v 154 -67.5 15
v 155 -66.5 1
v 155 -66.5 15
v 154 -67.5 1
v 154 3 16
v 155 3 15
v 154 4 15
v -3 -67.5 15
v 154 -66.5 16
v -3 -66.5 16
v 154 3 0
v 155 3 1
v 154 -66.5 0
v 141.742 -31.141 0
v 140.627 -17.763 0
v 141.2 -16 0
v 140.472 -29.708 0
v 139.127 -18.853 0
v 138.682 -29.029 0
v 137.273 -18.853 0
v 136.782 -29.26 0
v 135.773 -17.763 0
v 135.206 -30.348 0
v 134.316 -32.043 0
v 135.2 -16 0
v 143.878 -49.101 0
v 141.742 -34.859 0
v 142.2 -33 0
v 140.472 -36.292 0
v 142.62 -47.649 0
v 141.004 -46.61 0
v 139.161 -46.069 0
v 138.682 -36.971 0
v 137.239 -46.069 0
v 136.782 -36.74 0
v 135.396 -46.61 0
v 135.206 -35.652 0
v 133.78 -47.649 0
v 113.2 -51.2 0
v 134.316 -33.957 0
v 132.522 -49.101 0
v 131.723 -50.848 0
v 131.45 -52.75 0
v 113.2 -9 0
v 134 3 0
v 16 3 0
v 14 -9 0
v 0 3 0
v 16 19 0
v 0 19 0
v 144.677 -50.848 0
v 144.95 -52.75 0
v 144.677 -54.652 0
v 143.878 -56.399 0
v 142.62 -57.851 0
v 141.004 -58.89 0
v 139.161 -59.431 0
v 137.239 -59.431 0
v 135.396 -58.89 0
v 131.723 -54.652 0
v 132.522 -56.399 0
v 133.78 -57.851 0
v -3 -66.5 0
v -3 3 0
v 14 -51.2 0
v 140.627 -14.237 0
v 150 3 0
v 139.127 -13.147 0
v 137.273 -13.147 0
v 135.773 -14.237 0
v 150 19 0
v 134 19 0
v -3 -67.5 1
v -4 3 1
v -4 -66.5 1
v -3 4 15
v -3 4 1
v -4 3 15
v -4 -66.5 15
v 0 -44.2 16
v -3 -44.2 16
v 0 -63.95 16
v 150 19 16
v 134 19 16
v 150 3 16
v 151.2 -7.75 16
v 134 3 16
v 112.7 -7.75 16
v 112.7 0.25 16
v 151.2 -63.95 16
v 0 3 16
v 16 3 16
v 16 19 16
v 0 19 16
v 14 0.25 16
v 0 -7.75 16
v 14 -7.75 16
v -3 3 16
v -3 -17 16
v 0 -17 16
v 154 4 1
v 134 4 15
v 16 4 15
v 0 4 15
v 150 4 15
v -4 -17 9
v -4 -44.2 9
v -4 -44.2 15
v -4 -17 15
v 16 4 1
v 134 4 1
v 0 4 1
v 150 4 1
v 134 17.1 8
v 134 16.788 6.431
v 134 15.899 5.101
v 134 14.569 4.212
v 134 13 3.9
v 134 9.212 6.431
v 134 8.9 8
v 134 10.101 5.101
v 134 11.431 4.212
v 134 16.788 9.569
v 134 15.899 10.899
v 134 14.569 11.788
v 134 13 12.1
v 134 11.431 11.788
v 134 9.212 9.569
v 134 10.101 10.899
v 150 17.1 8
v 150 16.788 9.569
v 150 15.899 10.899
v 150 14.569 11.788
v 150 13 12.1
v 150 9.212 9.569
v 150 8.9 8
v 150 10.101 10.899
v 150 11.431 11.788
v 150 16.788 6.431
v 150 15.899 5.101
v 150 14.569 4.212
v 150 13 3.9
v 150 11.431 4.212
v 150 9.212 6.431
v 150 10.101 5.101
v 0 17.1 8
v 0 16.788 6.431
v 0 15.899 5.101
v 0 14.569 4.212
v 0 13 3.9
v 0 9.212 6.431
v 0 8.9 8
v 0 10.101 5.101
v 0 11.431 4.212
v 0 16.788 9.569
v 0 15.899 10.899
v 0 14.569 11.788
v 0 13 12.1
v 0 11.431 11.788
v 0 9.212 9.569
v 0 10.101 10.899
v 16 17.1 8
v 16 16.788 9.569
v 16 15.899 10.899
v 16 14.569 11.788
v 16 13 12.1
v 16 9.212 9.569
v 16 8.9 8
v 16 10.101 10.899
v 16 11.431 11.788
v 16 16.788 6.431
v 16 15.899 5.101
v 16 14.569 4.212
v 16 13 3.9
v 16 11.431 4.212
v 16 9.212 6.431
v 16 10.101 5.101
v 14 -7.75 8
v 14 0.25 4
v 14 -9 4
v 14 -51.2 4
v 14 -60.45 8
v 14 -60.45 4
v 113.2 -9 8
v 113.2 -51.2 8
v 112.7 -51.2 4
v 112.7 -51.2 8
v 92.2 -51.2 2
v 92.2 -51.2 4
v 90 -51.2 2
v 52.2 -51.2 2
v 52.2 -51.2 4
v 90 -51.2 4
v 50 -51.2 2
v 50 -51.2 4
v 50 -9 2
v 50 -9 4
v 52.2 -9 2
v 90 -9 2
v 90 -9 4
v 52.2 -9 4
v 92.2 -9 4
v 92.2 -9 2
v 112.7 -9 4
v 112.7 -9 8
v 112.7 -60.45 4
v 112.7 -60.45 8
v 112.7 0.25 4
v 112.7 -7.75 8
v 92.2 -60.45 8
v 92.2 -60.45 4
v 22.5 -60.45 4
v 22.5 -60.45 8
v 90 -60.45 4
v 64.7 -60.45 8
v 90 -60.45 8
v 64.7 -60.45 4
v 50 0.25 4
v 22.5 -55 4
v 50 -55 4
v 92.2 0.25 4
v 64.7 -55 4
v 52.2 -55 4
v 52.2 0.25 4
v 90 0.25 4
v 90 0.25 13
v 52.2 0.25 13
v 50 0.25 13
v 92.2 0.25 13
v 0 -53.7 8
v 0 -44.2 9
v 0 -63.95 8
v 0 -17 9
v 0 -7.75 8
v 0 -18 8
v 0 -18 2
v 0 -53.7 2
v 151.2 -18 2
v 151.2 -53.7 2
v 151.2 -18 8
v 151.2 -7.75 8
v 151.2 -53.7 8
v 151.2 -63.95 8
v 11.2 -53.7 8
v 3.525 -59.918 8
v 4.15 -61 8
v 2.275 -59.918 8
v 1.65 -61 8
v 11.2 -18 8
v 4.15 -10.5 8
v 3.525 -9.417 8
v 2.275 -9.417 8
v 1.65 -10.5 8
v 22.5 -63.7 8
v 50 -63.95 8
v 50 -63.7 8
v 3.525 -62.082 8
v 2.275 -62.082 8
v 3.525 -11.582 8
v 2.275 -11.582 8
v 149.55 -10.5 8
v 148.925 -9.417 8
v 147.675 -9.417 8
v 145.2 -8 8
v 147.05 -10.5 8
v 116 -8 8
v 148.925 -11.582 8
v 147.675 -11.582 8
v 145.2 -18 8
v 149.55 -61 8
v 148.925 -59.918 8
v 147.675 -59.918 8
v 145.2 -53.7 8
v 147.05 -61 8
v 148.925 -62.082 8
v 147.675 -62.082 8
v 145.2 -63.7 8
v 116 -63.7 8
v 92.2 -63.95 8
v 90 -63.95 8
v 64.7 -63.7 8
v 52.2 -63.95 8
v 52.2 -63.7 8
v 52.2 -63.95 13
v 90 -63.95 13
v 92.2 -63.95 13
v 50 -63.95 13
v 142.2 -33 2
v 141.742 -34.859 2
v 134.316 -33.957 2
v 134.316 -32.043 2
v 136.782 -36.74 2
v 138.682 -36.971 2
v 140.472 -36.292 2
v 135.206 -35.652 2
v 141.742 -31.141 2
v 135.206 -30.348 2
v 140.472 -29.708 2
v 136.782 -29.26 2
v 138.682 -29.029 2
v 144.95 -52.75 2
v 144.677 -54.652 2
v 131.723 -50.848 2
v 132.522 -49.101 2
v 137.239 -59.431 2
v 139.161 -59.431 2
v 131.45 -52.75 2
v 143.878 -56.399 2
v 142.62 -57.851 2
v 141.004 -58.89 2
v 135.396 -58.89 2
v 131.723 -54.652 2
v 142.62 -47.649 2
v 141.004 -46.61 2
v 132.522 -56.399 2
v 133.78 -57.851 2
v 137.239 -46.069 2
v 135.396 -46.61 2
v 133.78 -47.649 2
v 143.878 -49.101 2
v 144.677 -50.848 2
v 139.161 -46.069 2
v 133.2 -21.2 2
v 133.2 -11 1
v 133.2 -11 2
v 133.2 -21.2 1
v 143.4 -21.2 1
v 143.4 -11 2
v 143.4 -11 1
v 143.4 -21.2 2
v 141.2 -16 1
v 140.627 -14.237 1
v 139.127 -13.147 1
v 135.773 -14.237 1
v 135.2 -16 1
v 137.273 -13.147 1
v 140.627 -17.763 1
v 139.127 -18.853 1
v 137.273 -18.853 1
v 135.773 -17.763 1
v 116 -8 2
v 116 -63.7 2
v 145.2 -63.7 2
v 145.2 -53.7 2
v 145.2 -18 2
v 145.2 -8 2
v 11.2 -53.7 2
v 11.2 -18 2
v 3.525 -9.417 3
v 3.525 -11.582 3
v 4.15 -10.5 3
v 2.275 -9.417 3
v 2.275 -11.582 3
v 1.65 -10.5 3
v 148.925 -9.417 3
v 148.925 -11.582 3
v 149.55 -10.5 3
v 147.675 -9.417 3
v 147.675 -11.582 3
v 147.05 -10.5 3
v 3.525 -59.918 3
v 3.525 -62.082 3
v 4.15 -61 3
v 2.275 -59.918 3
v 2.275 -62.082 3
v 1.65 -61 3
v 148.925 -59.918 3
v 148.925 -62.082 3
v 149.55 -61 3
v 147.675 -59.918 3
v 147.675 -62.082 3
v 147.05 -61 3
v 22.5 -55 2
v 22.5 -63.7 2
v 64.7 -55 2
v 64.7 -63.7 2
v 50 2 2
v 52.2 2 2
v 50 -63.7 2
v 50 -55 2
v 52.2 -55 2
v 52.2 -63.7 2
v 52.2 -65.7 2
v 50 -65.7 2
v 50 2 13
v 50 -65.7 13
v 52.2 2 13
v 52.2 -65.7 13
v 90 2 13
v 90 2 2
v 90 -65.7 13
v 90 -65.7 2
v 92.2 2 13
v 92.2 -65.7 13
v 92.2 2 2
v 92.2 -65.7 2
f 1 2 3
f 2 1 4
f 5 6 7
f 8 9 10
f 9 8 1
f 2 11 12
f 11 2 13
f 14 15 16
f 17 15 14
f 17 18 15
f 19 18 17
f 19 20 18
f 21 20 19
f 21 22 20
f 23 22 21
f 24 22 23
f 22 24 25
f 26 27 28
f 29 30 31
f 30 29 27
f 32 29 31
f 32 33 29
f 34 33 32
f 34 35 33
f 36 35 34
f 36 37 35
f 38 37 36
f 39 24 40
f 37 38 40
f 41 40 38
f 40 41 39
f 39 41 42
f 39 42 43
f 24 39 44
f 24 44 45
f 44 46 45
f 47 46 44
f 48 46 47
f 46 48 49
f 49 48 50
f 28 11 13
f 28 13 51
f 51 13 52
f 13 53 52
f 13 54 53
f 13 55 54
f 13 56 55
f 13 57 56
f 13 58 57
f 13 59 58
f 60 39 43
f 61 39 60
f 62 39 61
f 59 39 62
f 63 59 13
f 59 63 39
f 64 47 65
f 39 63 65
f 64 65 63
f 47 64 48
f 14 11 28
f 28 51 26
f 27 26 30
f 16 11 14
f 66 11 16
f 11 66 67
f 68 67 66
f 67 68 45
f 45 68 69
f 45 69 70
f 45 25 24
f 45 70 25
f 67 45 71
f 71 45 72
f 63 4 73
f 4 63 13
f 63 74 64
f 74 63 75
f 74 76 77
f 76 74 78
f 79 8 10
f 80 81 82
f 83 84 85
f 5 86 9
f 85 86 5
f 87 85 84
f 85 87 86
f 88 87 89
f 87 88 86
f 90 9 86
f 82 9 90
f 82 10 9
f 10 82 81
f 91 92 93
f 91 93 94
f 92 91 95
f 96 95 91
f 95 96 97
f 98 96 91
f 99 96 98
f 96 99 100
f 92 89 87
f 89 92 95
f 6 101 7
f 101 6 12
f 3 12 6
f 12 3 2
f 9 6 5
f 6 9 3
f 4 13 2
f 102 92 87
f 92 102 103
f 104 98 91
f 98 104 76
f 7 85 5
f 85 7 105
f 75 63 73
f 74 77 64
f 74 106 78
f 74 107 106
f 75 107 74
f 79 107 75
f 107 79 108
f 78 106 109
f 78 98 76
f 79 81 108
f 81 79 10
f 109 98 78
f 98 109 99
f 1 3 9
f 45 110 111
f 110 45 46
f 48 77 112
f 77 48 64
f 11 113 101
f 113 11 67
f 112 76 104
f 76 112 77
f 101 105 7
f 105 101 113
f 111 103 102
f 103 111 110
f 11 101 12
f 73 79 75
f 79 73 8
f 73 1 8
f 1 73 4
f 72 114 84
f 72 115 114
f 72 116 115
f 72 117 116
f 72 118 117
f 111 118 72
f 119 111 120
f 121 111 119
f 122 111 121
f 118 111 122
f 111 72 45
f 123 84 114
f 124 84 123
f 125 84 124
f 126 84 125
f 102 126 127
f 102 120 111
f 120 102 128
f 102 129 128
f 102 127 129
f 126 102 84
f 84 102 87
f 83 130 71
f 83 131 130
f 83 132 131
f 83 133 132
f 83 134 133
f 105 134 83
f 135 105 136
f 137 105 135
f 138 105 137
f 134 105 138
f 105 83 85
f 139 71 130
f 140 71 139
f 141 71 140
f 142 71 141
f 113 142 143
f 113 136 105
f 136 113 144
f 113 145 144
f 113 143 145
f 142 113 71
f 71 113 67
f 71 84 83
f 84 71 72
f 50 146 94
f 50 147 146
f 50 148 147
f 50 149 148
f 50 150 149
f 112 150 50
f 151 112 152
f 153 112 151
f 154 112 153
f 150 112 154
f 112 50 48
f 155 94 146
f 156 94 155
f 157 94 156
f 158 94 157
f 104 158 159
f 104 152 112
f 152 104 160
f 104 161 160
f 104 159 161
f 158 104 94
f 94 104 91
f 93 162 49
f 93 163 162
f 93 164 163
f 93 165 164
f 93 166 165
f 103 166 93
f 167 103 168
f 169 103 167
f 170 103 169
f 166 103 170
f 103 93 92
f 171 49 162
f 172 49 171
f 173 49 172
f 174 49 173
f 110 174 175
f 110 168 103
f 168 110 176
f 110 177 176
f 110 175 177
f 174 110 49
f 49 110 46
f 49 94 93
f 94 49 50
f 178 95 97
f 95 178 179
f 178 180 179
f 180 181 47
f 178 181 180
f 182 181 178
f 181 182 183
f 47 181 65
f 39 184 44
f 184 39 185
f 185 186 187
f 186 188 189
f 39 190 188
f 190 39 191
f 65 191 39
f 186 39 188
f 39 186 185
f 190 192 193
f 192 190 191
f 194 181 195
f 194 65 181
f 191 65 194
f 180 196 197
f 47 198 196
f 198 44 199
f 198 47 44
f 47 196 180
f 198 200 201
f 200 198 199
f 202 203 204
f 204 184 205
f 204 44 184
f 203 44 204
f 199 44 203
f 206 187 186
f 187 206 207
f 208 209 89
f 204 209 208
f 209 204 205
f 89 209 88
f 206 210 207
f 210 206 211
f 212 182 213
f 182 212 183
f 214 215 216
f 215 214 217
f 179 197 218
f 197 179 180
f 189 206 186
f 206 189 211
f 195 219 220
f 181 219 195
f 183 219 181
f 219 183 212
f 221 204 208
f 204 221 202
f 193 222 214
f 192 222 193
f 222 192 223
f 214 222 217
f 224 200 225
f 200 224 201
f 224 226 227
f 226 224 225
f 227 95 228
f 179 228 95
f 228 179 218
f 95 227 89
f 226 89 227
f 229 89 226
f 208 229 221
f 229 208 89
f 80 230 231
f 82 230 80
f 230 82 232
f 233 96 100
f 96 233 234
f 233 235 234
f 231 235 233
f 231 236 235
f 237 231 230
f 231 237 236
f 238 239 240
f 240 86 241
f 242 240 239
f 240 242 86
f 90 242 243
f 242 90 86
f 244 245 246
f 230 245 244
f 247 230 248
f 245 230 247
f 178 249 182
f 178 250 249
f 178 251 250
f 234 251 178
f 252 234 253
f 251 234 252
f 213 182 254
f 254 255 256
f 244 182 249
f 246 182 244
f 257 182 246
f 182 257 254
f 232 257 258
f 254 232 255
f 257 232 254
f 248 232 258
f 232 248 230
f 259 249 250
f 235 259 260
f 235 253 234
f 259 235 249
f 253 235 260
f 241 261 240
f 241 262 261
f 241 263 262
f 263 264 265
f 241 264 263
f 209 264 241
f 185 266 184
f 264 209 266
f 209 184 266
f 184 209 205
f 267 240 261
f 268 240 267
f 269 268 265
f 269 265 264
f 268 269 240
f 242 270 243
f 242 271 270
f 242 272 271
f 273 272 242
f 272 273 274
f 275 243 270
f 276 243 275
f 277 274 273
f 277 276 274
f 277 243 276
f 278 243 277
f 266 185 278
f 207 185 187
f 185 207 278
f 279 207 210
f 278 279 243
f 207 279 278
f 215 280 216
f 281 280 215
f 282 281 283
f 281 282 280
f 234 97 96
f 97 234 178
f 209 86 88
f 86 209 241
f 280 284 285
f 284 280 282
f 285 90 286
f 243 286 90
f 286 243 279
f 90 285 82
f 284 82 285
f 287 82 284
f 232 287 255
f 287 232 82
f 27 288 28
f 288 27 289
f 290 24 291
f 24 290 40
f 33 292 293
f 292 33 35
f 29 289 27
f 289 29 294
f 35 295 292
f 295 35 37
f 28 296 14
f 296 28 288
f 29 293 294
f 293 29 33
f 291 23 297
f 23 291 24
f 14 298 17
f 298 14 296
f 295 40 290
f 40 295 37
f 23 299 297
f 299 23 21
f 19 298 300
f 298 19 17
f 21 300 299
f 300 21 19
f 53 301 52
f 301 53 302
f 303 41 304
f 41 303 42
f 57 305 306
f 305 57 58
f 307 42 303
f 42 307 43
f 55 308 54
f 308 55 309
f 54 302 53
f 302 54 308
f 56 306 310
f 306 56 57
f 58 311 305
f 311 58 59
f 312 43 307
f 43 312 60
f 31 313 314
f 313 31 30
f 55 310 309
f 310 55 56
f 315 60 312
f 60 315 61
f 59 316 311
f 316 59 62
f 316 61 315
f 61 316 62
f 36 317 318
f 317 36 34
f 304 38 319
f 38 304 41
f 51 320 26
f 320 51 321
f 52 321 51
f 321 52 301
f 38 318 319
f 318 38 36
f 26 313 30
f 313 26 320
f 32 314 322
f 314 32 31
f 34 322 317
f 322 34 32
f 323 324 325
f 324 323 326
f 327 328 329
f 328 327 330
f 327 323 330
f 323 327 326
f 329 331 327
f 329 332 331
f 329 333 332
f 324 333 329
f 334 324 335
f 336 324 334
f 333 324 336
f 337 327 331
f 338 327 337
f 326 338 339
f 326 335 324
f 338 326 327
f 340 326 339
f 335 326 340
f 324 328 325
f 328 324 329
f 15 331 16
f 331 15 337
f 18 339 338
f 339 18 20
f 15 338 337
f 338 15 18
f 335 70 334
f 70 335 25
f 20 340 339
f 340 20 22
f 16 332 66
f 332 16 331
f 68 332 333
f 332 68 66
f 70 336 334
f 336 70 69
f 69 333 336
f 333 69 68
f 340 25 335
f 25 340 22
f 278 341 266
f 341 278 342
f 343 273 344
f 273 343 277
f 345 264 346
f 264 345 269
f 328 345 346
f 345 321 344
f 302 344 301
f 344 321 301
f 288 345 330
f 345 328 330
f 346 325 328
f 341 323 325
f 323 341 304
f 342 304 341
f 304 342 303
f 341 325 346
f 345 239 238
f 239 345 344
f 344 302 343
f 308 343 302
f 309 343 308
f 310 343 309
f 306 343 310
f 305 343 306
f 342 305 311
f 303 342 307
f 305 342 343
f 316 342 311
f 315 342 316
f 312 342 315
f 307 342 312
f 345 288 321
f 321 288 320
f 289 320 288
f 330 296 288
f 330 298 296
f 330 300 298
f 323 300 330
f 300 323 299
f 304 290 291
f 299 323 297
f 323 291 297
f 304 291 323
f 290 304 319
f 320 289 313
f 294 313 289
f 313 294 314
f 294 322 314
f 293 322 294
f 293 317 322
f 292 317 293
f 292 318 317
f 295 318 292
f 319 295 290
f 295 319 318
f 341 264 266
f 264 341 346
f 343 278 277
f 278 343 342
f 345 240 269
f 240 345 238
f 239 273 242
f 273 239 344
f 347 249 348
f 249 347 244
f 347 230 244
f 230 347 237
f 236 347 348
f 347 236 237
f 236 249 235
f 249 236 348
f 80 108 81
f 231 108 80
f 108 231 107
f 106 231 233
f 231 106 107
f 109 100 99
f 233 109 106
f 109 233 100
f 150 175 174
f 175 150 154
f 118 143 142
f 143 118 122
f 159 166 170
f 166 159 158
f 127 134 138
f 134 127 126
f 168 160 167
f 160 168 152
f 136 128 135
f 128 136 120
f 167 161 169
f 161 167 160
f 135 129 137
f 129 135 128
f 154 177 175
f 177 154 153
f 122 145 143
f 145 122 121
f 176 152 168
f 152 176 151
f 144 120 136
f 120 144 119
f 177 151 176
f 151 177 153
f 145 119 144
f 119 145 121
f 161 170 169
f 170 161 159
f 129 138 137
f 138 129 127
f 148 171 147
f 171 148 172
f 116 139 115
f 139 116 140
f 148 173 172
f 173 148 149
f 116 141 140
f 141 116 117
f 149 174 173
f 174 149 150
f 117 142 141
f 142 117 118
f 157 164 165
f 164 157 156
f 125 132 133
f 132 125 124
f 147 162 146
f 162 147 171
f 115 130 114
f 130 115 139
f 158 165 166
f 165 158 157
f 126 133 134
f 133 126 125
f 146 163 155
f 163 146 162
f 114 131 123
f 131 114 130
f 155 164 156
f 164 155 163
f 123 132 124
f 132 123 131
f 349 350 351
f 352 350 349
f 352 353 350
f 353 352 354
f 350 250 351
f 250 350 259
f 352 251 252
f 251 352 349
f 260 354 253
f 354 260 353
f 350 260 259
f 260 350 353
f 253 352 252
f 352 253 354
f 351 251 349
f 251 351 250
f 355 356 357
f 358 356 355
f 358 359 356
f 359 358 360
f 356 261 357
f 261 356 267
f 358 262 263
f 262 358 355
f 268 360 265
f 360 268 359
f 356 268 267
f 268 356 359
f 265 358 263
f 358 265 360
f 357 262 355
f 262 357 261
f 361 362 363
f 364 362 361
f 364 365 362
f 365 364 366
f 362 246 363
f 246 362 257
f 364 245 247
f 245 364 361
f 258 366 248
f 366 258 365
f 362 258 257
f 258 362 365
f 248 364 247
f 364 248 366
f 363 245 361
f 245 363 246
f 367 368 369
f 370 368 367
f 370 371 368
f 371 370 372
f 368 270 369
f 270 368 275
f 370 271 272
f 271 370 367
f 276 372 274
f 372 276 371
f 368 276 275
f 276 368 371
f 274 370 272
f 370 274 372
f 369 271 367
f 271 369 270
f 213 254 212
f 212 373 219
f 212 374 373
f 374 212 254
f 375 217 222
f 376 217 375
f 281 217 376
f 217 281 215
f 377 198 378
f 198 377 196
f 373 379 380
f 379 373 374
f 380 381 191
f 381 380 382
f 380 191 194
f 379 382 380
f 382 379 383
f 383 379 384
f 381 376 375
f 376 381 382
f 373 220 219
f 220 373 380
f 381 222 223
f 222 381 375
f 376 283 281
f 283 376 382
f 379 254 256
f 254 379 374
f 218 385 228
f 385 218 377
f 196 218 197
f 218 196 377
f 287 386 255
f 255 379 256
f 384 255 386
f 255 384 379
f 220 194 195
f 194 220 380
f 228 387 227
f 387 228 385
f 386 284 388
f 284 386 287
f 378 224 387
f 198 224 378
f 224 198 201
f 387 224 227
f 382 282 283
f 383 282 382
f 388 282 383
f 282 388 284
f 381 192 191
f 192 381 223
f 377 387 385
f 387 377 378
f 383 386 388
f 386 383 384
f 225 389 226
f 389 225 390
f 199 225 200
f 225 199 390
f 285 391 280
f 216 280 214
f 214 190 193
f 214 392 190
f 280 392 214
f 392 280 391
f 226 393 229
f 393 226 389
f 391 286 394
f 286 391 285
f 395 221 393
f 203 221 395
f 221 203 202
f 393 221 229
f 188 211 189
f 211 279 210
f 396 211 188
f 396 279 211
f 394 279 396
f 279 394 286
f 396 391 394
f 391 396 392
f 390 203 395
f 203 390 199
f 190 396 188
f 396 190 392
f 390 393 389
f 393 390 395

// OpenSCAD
//////////////////////////////////////////////////////////////////////////////////////
///
///  Double Hinged Frame for Smart LCD 2004 Controller
///
///  This file constructs a double hinged frame for the Smart LCD Controller for mounting
///  on a box-frame Prusa i3 3D printer.  The hinge mechanism allows the controller
///  to be stowed away behind the frame when it's not being used.
///  
///  The project consists of the LCD frame as such and a strong double hinge mechanism.
///  Both frame and hinge mechanism can also be used independently, i.e. if the
///  Smart LCD Controller is to be mounted in a fixed position, the hinge is not
///  needed, and the hinge mechanism alone could well also be useful for flexible
///  mounting devices other than that particular controller.
///
///  The Smart LCD Controller is inserted into frame part and fastened on it by
///  means of four M3x10 screws.  
///
///  The hinge axes are M4 screws which are tightened with a spring and a Nyloc nut,
///  as to allow rotation while maintaining enough pressure to keep the frame solidly
///  in place.  The printer-side hinge also has a locking mechanism to restrict the
///  rotation between 0 and 90 degrees.  Also grooves at 0 and 90 degrees cause
///  the hinge to snap precisely into place at the two end positions.
///
///  The provided SCAD file is fully parametrized, so that it can be easily modified
///  to particular needs, if necessary.  Separate STL files are provided for the frame
///  and the hinge parts.
///
//////////////////////////////////////////////////////////////////////////////////////
///
///  2014-12-03 Heinz Spiess, Switzerland
///
///  released under Creative Commons - Attribution - Share Alike licence (CC BY-SA)
//////////////////////////////////////////////////////////////////////////////////////

eh=0.25;  // extrusion layer height
ew=0.55;  // extrusion width

// build a cube with chamfered edges
module chamfered_cube(size,d=1){
   hull(){
     translate([d,d,0])cube(size-2*[d,d,0]);
     translate([0,d,d])cube(size-2*[0,d,d]);
     translate([d,0,d])cube(size-2*[d,0,d]);
   }
}


// build a cylinder with chamfered edges
module chamfered_cylinder(r=0,r1=0,r2=0,h=0,d=1){
   hull(){
      translate([0,0,d])cylinder(r1=(r?r:r1),r2=(r>0?r:r2),h=h-2*d);
      cylinder(r1=(r?r:r1)-d,r2=(r>0?r:r2)-d,h=h);
   }
}

//////////////////////////////////////////////////////////////////////
// build an arbitrary object from a list of blocks and cavities
//////////////////////////////////////////////////////////////////////
module object(blocks,cavities,eps=[0,0,0]){
   difference(){
      union()for(i=[0:len(blocks)-1])assign(b=blocks[i])
         translate(b[0])
	    if(b[1][0]>0)
	       if(len(b[1])>3)
	          chamfered_cube([b[1][0],b[1][1],b[1][2]],b[1][3]);
	       else
	          cube(b[1]);
	    else
	       rotate(90*[b[1][0]==-1?1:0,b[1][0]==-2?1:0,0])
	       cylinder(r=b[1][1],h=b[1][2],$fn=(len(b)>2?b[2]:0));
      for(i=[0:len(cavities)-1])assign(c=cavities[i])
         translate(c[0])
	    if(c[1][0]>0)
	       translate([-eps])cube(c[1]+2*eps);
	    else
	       rotate(90*[c[1][0]==-1?1:0,c[1][0]==-2?1:0,0])
	       cylinder(r=c[1][1],h=c[1][2],$fn=(len(c)>2?c[2]:0));
   }
}


//////////////////////////////////////////////////////////////////////
// Frame for Smart 2004 LCD Controller 
//////////////////////////////////////////////////////////////////////
module smartlcd(
w=4,              // wall thickness
s=[4,7.2,5],      // screw [screw diameter,nut size, nut height]
eps=[0.1,0.1,0] // gap for cavities
){
  dist_conns = 113.2+25;
  blocks=[
      [[-w,-w,0],[151+2*w,63.5+2*w,16,1]],
      [[134,-19,0],[16,16,16]],  
    [[0,-19,0],[16,16,16]],
    //[[113.2,10,-10],[26,10,10]],
    // just one outer block
    
  ];
   cavities=[
      [[14,9,-2],[99,42,19]],    // LCD cutout
      [[14,-0.25,4],[98.5,60.5,9+10]],  // LCD PCB
      [[0,7.75,8],[151,56,5+14]],    // Main PCB
      [[dist_conns,33,-2],[0,8/2,20]],     // Switch axis
      [[dist_conns,7+39+13.5/2,-2],[0,13.5/2,19]],     // buzzer
      [[dist_conns-5,11,1], [10, 10, 20]],
      [[dist_conns,16,-2],[0,3,20]],      // reset switch
      [[116,8,2],[29,55.5,10]],     // buzzer/switch/reset
      [[118,18,2],[33,35.5,10]],    // buzzer/switch/reset
      [[0,18,2],[11,35.5,10]],    // buzzer/switch/reset
      [[-w-1,17,9],[w+2,27,10]],    // SD slot
    
    [[-1,-13,8],[-2,4.1,200], 16],
    
    
      //[[-w-1,s[0]/2,8],[-2,s[0]/2,151+2*w+2],7], // hinge hole
      //[[w,s[0]/2,8],[-2,s[1]/2/cos(30),s[2]],6], // hinge nut trap
      //[[w,s[0]/2,12],[-2,s[1]/2/cos(30),s[2]],6], // hinge nut trap
      //[[w,s[0]/2,16],[-2,s[1]/2/cos(30),s[2]],6], // hinge nut trap
      //[[151-w-s[2],s[0]/2,8],[-2,s[1]/2/cos(30),s[2]],6], // hinge nut trap
      //[[151-w-s[2],s[0]/2,12],[-2,s[1]/2/cos(30),s[2]],6], // hinge nut trap
      //[[151-w-s[2],s[0]/2,16],[-2,s[1]/2/cos(30),s[2]],6], // hinge nut trap
      [[0+2.9,8+2.5,3],[0,2.5/2,6],6],    // Screw hole for PCB
      [[151-2.7,8+2.5,3],[0,2.5/2,6],6],  // Screw hole for PCB
      [[0+2.9,8+55.5-2.5,3],[0,2.5/2,6],6],    // Screw hole for PCB
      [[151-2.7,8+55.5-2.5,3],[0,2.5/2,6],6],    // Screw hole for PCB
      [[14.5+8,60-5,2],[42,8.5,9]],              // LCD pin header
      [[50,-w/2,2],[2,55.5+8+w,11]],              // Anti-Warping
      [[90,-w/2,2],[2,55.5+8+w,11]],              // Anti-Warping
  ];

    
  scale([1,-1, 1])object(blocks,cavities,eps);
}

//////////////////////////////////////////////////////////////////////
// Frame hinge for Smart 2004 LCD Controller 
//////////////////////////////////////////////////////////////////////

module hinge(
fix=false,          // construct fixed part of hinge
move=false,         // construct moving part of hinge
draw=false,         // put movable part at end position for drawing (not for printing!)
off=[36,32],        // center offset in X/Y direction
l=25,               // length of LCD hinge
s=[4,7,5,8,5],      // LCD mounting screw [screw diameter,nut diameter,nut height,spring diameter, spring length]
h=16,               // hight 
w=8,                // wall thickness
m3r=3.5/2,          // screw radius for mounting frame hinge
eps=0               // gap between fitting fixed and moving part
){

//  moving part
if(move){
   // drawing or printing position?
   translate([0,0,w])rotate([draw?180:0,0,0])translate([0,0,-w])

   difference(){
      union(){
         hull(){
	    // construct basic form of moving part
	    chamfered_cylinder(r=off[1]-h+eps,h=w);
            translate([-off[0]-eps,-off[1]+h-2+eps,0])chamfered_cube([off[0]+3,4,w]);
	 }
	 // lock for 90 degrees max angle
	 rotate(-45)intersection(){
	    chamfered_cylinder(r=off[1]-h+5+eps,h=w);
	    cube([off[1]+6,off[1]+6,w]);
	 }
	 // smooth out locking part at negative end
	 rotate(45)translate([0,-7,0])chamfered_cylinder(r=off[1]-h-2,h=w);
	 // block for LCD-side hinge
         translate([-off[0],-off[1],0])chamfered_cube([l,h,h]);
      }
      // hole for LCD mounting spring
      translate([-off[0],-off[1]+h/2,h/2])rotate([0,90,0])
         translate([0,0,l-s[4]])rotate(30)cylinder(r=s[3]/2/cos(30),h=s[4]+1,$fn=6);
      // hole for LCD mounting screw 
      translate([-off[0]-1,-off[1]+h/2,h/2])rotate([0,90,0])
         rotate(30)cylinder(r=s[0]/2,h=l+2,$fn=6);
      // clip grooves at 0 and 90 degrees
      for(a=[0,90])rotate(a)translate([-off[0],0,w+1])rotate([0,90,0])cylinder(r=2,h=2*off[0],$fn=6);
      // hole for frame side pivot screw
      translate([0,0,w/2+eh])cylinder(r=s[0]/2,h=w+2);
      // hole for frame side pivot spring
      translate([0,0,-1])cylinder(r=s[3]/cos(30)/2,h=1+w/2,$fn=6);
   }

}

// fixed part for mounting on printer frame
if(fix){
   difference(){
      // main body of fixed part is a
      // rectangular block with rounded corners
      hull()
         translate([-off[1]+h/2+off[0],-off[1]/2+h/2,0])
            for(sx=[-1,1])for(sy=[-1,1])
               translate([sx*(off[0]-h/2-s[1]),sy*(off[1]-h/2-s[1]),0])
	          chamfered_cylinder(r=s[1],h=h-w+3);

      // hole for pivoting screw
      translate([0,0,s[2]+eh])cylinder(r=s[0]/2,h=h,$fn=12);
      // nut cavity for pivot screw
      translate([0,0,-1])cylinder(r=s[1]/cos(30)/2,h=1+s[2],$fn=6);
      // subract moving part in 0 and 90 degrees position and with adequate gap
      for(a=[0,90])rotate(a)hinge(move=true,draw=true,eps=0.3);

      // holes for the 4 frame mounting screws
      translate([-off[1]+h/2+off[0],-off[1]/2+h/2,0])
         for(sx=[-1,1])for(sy=[-1,1])
            translate([sx*(off[0]-h/2-s[1]),sy*(off[1]-h/2-s[1]),-1]){
	       cylinder(r=m3r,h=h+2);
	       translate([0,0,4+0.01])cylinder(r1=m3r,r2=2*m3r,h=2*m3r);
	       translate([0,0,4+2*m3r])cylinder(r=2*m3r,h=h);
	    }
      }
   }

}

// draw the LCD frame and the hinge in operating position with give
// rotation angles for both hinges
module drawAll(a1=90,a2=30){
   hinge(fix=true);
   rotate(a1){
      color("green")for(a=[0])rotate(a)hinge(move=true,draw=true);
      translate([-40,30,0])rotate([0,0,180])translate(-[8,-7,-8])
         rotate([a2,0,0])
           translate([8,2,-8]) color("red")smartlcd();
   }
}

//  Automatic generation of STL files by Makefile
module Frame_SmartLCD2004(){  // AUTO_MAKE_STL
   smartlcd();
}

module Hinge_SmartLCD2004_Right(){  // AUTO_MAKE_STL
   translate([80,0,0])hinge(move=true);
   hinge(fix=true);
}

module Hinge_SmartLCD2004_Left(){  // AUTO_MAKE_STL
   scale([1,-1,1]){
     translate([80,0,0])hinge(move=true);
     hinge(fix=true);
   }
}

//////////////////////////////////////////////////////////////////////////////////////
// For interactive use of OpenScad uncomment and modify the following lines as needed:
//////////////////////////////////////////////////////////////////////////////////////

smartlcd();

//drawAll(a1=90,a2=-90);
//drawAll(a1=0,a2=-45);
//translate([80,0,0])hinge(move=true);
//hinge(fix=true);
//color("green")for(a=[0])rotate(a)hinge(move=true,draw=true);

// tf=200;drawAll(a1=max(0,90-$t*tf),a2=-90+(($t*tf)>90?$t*tf-90:0)); // animation!!!
